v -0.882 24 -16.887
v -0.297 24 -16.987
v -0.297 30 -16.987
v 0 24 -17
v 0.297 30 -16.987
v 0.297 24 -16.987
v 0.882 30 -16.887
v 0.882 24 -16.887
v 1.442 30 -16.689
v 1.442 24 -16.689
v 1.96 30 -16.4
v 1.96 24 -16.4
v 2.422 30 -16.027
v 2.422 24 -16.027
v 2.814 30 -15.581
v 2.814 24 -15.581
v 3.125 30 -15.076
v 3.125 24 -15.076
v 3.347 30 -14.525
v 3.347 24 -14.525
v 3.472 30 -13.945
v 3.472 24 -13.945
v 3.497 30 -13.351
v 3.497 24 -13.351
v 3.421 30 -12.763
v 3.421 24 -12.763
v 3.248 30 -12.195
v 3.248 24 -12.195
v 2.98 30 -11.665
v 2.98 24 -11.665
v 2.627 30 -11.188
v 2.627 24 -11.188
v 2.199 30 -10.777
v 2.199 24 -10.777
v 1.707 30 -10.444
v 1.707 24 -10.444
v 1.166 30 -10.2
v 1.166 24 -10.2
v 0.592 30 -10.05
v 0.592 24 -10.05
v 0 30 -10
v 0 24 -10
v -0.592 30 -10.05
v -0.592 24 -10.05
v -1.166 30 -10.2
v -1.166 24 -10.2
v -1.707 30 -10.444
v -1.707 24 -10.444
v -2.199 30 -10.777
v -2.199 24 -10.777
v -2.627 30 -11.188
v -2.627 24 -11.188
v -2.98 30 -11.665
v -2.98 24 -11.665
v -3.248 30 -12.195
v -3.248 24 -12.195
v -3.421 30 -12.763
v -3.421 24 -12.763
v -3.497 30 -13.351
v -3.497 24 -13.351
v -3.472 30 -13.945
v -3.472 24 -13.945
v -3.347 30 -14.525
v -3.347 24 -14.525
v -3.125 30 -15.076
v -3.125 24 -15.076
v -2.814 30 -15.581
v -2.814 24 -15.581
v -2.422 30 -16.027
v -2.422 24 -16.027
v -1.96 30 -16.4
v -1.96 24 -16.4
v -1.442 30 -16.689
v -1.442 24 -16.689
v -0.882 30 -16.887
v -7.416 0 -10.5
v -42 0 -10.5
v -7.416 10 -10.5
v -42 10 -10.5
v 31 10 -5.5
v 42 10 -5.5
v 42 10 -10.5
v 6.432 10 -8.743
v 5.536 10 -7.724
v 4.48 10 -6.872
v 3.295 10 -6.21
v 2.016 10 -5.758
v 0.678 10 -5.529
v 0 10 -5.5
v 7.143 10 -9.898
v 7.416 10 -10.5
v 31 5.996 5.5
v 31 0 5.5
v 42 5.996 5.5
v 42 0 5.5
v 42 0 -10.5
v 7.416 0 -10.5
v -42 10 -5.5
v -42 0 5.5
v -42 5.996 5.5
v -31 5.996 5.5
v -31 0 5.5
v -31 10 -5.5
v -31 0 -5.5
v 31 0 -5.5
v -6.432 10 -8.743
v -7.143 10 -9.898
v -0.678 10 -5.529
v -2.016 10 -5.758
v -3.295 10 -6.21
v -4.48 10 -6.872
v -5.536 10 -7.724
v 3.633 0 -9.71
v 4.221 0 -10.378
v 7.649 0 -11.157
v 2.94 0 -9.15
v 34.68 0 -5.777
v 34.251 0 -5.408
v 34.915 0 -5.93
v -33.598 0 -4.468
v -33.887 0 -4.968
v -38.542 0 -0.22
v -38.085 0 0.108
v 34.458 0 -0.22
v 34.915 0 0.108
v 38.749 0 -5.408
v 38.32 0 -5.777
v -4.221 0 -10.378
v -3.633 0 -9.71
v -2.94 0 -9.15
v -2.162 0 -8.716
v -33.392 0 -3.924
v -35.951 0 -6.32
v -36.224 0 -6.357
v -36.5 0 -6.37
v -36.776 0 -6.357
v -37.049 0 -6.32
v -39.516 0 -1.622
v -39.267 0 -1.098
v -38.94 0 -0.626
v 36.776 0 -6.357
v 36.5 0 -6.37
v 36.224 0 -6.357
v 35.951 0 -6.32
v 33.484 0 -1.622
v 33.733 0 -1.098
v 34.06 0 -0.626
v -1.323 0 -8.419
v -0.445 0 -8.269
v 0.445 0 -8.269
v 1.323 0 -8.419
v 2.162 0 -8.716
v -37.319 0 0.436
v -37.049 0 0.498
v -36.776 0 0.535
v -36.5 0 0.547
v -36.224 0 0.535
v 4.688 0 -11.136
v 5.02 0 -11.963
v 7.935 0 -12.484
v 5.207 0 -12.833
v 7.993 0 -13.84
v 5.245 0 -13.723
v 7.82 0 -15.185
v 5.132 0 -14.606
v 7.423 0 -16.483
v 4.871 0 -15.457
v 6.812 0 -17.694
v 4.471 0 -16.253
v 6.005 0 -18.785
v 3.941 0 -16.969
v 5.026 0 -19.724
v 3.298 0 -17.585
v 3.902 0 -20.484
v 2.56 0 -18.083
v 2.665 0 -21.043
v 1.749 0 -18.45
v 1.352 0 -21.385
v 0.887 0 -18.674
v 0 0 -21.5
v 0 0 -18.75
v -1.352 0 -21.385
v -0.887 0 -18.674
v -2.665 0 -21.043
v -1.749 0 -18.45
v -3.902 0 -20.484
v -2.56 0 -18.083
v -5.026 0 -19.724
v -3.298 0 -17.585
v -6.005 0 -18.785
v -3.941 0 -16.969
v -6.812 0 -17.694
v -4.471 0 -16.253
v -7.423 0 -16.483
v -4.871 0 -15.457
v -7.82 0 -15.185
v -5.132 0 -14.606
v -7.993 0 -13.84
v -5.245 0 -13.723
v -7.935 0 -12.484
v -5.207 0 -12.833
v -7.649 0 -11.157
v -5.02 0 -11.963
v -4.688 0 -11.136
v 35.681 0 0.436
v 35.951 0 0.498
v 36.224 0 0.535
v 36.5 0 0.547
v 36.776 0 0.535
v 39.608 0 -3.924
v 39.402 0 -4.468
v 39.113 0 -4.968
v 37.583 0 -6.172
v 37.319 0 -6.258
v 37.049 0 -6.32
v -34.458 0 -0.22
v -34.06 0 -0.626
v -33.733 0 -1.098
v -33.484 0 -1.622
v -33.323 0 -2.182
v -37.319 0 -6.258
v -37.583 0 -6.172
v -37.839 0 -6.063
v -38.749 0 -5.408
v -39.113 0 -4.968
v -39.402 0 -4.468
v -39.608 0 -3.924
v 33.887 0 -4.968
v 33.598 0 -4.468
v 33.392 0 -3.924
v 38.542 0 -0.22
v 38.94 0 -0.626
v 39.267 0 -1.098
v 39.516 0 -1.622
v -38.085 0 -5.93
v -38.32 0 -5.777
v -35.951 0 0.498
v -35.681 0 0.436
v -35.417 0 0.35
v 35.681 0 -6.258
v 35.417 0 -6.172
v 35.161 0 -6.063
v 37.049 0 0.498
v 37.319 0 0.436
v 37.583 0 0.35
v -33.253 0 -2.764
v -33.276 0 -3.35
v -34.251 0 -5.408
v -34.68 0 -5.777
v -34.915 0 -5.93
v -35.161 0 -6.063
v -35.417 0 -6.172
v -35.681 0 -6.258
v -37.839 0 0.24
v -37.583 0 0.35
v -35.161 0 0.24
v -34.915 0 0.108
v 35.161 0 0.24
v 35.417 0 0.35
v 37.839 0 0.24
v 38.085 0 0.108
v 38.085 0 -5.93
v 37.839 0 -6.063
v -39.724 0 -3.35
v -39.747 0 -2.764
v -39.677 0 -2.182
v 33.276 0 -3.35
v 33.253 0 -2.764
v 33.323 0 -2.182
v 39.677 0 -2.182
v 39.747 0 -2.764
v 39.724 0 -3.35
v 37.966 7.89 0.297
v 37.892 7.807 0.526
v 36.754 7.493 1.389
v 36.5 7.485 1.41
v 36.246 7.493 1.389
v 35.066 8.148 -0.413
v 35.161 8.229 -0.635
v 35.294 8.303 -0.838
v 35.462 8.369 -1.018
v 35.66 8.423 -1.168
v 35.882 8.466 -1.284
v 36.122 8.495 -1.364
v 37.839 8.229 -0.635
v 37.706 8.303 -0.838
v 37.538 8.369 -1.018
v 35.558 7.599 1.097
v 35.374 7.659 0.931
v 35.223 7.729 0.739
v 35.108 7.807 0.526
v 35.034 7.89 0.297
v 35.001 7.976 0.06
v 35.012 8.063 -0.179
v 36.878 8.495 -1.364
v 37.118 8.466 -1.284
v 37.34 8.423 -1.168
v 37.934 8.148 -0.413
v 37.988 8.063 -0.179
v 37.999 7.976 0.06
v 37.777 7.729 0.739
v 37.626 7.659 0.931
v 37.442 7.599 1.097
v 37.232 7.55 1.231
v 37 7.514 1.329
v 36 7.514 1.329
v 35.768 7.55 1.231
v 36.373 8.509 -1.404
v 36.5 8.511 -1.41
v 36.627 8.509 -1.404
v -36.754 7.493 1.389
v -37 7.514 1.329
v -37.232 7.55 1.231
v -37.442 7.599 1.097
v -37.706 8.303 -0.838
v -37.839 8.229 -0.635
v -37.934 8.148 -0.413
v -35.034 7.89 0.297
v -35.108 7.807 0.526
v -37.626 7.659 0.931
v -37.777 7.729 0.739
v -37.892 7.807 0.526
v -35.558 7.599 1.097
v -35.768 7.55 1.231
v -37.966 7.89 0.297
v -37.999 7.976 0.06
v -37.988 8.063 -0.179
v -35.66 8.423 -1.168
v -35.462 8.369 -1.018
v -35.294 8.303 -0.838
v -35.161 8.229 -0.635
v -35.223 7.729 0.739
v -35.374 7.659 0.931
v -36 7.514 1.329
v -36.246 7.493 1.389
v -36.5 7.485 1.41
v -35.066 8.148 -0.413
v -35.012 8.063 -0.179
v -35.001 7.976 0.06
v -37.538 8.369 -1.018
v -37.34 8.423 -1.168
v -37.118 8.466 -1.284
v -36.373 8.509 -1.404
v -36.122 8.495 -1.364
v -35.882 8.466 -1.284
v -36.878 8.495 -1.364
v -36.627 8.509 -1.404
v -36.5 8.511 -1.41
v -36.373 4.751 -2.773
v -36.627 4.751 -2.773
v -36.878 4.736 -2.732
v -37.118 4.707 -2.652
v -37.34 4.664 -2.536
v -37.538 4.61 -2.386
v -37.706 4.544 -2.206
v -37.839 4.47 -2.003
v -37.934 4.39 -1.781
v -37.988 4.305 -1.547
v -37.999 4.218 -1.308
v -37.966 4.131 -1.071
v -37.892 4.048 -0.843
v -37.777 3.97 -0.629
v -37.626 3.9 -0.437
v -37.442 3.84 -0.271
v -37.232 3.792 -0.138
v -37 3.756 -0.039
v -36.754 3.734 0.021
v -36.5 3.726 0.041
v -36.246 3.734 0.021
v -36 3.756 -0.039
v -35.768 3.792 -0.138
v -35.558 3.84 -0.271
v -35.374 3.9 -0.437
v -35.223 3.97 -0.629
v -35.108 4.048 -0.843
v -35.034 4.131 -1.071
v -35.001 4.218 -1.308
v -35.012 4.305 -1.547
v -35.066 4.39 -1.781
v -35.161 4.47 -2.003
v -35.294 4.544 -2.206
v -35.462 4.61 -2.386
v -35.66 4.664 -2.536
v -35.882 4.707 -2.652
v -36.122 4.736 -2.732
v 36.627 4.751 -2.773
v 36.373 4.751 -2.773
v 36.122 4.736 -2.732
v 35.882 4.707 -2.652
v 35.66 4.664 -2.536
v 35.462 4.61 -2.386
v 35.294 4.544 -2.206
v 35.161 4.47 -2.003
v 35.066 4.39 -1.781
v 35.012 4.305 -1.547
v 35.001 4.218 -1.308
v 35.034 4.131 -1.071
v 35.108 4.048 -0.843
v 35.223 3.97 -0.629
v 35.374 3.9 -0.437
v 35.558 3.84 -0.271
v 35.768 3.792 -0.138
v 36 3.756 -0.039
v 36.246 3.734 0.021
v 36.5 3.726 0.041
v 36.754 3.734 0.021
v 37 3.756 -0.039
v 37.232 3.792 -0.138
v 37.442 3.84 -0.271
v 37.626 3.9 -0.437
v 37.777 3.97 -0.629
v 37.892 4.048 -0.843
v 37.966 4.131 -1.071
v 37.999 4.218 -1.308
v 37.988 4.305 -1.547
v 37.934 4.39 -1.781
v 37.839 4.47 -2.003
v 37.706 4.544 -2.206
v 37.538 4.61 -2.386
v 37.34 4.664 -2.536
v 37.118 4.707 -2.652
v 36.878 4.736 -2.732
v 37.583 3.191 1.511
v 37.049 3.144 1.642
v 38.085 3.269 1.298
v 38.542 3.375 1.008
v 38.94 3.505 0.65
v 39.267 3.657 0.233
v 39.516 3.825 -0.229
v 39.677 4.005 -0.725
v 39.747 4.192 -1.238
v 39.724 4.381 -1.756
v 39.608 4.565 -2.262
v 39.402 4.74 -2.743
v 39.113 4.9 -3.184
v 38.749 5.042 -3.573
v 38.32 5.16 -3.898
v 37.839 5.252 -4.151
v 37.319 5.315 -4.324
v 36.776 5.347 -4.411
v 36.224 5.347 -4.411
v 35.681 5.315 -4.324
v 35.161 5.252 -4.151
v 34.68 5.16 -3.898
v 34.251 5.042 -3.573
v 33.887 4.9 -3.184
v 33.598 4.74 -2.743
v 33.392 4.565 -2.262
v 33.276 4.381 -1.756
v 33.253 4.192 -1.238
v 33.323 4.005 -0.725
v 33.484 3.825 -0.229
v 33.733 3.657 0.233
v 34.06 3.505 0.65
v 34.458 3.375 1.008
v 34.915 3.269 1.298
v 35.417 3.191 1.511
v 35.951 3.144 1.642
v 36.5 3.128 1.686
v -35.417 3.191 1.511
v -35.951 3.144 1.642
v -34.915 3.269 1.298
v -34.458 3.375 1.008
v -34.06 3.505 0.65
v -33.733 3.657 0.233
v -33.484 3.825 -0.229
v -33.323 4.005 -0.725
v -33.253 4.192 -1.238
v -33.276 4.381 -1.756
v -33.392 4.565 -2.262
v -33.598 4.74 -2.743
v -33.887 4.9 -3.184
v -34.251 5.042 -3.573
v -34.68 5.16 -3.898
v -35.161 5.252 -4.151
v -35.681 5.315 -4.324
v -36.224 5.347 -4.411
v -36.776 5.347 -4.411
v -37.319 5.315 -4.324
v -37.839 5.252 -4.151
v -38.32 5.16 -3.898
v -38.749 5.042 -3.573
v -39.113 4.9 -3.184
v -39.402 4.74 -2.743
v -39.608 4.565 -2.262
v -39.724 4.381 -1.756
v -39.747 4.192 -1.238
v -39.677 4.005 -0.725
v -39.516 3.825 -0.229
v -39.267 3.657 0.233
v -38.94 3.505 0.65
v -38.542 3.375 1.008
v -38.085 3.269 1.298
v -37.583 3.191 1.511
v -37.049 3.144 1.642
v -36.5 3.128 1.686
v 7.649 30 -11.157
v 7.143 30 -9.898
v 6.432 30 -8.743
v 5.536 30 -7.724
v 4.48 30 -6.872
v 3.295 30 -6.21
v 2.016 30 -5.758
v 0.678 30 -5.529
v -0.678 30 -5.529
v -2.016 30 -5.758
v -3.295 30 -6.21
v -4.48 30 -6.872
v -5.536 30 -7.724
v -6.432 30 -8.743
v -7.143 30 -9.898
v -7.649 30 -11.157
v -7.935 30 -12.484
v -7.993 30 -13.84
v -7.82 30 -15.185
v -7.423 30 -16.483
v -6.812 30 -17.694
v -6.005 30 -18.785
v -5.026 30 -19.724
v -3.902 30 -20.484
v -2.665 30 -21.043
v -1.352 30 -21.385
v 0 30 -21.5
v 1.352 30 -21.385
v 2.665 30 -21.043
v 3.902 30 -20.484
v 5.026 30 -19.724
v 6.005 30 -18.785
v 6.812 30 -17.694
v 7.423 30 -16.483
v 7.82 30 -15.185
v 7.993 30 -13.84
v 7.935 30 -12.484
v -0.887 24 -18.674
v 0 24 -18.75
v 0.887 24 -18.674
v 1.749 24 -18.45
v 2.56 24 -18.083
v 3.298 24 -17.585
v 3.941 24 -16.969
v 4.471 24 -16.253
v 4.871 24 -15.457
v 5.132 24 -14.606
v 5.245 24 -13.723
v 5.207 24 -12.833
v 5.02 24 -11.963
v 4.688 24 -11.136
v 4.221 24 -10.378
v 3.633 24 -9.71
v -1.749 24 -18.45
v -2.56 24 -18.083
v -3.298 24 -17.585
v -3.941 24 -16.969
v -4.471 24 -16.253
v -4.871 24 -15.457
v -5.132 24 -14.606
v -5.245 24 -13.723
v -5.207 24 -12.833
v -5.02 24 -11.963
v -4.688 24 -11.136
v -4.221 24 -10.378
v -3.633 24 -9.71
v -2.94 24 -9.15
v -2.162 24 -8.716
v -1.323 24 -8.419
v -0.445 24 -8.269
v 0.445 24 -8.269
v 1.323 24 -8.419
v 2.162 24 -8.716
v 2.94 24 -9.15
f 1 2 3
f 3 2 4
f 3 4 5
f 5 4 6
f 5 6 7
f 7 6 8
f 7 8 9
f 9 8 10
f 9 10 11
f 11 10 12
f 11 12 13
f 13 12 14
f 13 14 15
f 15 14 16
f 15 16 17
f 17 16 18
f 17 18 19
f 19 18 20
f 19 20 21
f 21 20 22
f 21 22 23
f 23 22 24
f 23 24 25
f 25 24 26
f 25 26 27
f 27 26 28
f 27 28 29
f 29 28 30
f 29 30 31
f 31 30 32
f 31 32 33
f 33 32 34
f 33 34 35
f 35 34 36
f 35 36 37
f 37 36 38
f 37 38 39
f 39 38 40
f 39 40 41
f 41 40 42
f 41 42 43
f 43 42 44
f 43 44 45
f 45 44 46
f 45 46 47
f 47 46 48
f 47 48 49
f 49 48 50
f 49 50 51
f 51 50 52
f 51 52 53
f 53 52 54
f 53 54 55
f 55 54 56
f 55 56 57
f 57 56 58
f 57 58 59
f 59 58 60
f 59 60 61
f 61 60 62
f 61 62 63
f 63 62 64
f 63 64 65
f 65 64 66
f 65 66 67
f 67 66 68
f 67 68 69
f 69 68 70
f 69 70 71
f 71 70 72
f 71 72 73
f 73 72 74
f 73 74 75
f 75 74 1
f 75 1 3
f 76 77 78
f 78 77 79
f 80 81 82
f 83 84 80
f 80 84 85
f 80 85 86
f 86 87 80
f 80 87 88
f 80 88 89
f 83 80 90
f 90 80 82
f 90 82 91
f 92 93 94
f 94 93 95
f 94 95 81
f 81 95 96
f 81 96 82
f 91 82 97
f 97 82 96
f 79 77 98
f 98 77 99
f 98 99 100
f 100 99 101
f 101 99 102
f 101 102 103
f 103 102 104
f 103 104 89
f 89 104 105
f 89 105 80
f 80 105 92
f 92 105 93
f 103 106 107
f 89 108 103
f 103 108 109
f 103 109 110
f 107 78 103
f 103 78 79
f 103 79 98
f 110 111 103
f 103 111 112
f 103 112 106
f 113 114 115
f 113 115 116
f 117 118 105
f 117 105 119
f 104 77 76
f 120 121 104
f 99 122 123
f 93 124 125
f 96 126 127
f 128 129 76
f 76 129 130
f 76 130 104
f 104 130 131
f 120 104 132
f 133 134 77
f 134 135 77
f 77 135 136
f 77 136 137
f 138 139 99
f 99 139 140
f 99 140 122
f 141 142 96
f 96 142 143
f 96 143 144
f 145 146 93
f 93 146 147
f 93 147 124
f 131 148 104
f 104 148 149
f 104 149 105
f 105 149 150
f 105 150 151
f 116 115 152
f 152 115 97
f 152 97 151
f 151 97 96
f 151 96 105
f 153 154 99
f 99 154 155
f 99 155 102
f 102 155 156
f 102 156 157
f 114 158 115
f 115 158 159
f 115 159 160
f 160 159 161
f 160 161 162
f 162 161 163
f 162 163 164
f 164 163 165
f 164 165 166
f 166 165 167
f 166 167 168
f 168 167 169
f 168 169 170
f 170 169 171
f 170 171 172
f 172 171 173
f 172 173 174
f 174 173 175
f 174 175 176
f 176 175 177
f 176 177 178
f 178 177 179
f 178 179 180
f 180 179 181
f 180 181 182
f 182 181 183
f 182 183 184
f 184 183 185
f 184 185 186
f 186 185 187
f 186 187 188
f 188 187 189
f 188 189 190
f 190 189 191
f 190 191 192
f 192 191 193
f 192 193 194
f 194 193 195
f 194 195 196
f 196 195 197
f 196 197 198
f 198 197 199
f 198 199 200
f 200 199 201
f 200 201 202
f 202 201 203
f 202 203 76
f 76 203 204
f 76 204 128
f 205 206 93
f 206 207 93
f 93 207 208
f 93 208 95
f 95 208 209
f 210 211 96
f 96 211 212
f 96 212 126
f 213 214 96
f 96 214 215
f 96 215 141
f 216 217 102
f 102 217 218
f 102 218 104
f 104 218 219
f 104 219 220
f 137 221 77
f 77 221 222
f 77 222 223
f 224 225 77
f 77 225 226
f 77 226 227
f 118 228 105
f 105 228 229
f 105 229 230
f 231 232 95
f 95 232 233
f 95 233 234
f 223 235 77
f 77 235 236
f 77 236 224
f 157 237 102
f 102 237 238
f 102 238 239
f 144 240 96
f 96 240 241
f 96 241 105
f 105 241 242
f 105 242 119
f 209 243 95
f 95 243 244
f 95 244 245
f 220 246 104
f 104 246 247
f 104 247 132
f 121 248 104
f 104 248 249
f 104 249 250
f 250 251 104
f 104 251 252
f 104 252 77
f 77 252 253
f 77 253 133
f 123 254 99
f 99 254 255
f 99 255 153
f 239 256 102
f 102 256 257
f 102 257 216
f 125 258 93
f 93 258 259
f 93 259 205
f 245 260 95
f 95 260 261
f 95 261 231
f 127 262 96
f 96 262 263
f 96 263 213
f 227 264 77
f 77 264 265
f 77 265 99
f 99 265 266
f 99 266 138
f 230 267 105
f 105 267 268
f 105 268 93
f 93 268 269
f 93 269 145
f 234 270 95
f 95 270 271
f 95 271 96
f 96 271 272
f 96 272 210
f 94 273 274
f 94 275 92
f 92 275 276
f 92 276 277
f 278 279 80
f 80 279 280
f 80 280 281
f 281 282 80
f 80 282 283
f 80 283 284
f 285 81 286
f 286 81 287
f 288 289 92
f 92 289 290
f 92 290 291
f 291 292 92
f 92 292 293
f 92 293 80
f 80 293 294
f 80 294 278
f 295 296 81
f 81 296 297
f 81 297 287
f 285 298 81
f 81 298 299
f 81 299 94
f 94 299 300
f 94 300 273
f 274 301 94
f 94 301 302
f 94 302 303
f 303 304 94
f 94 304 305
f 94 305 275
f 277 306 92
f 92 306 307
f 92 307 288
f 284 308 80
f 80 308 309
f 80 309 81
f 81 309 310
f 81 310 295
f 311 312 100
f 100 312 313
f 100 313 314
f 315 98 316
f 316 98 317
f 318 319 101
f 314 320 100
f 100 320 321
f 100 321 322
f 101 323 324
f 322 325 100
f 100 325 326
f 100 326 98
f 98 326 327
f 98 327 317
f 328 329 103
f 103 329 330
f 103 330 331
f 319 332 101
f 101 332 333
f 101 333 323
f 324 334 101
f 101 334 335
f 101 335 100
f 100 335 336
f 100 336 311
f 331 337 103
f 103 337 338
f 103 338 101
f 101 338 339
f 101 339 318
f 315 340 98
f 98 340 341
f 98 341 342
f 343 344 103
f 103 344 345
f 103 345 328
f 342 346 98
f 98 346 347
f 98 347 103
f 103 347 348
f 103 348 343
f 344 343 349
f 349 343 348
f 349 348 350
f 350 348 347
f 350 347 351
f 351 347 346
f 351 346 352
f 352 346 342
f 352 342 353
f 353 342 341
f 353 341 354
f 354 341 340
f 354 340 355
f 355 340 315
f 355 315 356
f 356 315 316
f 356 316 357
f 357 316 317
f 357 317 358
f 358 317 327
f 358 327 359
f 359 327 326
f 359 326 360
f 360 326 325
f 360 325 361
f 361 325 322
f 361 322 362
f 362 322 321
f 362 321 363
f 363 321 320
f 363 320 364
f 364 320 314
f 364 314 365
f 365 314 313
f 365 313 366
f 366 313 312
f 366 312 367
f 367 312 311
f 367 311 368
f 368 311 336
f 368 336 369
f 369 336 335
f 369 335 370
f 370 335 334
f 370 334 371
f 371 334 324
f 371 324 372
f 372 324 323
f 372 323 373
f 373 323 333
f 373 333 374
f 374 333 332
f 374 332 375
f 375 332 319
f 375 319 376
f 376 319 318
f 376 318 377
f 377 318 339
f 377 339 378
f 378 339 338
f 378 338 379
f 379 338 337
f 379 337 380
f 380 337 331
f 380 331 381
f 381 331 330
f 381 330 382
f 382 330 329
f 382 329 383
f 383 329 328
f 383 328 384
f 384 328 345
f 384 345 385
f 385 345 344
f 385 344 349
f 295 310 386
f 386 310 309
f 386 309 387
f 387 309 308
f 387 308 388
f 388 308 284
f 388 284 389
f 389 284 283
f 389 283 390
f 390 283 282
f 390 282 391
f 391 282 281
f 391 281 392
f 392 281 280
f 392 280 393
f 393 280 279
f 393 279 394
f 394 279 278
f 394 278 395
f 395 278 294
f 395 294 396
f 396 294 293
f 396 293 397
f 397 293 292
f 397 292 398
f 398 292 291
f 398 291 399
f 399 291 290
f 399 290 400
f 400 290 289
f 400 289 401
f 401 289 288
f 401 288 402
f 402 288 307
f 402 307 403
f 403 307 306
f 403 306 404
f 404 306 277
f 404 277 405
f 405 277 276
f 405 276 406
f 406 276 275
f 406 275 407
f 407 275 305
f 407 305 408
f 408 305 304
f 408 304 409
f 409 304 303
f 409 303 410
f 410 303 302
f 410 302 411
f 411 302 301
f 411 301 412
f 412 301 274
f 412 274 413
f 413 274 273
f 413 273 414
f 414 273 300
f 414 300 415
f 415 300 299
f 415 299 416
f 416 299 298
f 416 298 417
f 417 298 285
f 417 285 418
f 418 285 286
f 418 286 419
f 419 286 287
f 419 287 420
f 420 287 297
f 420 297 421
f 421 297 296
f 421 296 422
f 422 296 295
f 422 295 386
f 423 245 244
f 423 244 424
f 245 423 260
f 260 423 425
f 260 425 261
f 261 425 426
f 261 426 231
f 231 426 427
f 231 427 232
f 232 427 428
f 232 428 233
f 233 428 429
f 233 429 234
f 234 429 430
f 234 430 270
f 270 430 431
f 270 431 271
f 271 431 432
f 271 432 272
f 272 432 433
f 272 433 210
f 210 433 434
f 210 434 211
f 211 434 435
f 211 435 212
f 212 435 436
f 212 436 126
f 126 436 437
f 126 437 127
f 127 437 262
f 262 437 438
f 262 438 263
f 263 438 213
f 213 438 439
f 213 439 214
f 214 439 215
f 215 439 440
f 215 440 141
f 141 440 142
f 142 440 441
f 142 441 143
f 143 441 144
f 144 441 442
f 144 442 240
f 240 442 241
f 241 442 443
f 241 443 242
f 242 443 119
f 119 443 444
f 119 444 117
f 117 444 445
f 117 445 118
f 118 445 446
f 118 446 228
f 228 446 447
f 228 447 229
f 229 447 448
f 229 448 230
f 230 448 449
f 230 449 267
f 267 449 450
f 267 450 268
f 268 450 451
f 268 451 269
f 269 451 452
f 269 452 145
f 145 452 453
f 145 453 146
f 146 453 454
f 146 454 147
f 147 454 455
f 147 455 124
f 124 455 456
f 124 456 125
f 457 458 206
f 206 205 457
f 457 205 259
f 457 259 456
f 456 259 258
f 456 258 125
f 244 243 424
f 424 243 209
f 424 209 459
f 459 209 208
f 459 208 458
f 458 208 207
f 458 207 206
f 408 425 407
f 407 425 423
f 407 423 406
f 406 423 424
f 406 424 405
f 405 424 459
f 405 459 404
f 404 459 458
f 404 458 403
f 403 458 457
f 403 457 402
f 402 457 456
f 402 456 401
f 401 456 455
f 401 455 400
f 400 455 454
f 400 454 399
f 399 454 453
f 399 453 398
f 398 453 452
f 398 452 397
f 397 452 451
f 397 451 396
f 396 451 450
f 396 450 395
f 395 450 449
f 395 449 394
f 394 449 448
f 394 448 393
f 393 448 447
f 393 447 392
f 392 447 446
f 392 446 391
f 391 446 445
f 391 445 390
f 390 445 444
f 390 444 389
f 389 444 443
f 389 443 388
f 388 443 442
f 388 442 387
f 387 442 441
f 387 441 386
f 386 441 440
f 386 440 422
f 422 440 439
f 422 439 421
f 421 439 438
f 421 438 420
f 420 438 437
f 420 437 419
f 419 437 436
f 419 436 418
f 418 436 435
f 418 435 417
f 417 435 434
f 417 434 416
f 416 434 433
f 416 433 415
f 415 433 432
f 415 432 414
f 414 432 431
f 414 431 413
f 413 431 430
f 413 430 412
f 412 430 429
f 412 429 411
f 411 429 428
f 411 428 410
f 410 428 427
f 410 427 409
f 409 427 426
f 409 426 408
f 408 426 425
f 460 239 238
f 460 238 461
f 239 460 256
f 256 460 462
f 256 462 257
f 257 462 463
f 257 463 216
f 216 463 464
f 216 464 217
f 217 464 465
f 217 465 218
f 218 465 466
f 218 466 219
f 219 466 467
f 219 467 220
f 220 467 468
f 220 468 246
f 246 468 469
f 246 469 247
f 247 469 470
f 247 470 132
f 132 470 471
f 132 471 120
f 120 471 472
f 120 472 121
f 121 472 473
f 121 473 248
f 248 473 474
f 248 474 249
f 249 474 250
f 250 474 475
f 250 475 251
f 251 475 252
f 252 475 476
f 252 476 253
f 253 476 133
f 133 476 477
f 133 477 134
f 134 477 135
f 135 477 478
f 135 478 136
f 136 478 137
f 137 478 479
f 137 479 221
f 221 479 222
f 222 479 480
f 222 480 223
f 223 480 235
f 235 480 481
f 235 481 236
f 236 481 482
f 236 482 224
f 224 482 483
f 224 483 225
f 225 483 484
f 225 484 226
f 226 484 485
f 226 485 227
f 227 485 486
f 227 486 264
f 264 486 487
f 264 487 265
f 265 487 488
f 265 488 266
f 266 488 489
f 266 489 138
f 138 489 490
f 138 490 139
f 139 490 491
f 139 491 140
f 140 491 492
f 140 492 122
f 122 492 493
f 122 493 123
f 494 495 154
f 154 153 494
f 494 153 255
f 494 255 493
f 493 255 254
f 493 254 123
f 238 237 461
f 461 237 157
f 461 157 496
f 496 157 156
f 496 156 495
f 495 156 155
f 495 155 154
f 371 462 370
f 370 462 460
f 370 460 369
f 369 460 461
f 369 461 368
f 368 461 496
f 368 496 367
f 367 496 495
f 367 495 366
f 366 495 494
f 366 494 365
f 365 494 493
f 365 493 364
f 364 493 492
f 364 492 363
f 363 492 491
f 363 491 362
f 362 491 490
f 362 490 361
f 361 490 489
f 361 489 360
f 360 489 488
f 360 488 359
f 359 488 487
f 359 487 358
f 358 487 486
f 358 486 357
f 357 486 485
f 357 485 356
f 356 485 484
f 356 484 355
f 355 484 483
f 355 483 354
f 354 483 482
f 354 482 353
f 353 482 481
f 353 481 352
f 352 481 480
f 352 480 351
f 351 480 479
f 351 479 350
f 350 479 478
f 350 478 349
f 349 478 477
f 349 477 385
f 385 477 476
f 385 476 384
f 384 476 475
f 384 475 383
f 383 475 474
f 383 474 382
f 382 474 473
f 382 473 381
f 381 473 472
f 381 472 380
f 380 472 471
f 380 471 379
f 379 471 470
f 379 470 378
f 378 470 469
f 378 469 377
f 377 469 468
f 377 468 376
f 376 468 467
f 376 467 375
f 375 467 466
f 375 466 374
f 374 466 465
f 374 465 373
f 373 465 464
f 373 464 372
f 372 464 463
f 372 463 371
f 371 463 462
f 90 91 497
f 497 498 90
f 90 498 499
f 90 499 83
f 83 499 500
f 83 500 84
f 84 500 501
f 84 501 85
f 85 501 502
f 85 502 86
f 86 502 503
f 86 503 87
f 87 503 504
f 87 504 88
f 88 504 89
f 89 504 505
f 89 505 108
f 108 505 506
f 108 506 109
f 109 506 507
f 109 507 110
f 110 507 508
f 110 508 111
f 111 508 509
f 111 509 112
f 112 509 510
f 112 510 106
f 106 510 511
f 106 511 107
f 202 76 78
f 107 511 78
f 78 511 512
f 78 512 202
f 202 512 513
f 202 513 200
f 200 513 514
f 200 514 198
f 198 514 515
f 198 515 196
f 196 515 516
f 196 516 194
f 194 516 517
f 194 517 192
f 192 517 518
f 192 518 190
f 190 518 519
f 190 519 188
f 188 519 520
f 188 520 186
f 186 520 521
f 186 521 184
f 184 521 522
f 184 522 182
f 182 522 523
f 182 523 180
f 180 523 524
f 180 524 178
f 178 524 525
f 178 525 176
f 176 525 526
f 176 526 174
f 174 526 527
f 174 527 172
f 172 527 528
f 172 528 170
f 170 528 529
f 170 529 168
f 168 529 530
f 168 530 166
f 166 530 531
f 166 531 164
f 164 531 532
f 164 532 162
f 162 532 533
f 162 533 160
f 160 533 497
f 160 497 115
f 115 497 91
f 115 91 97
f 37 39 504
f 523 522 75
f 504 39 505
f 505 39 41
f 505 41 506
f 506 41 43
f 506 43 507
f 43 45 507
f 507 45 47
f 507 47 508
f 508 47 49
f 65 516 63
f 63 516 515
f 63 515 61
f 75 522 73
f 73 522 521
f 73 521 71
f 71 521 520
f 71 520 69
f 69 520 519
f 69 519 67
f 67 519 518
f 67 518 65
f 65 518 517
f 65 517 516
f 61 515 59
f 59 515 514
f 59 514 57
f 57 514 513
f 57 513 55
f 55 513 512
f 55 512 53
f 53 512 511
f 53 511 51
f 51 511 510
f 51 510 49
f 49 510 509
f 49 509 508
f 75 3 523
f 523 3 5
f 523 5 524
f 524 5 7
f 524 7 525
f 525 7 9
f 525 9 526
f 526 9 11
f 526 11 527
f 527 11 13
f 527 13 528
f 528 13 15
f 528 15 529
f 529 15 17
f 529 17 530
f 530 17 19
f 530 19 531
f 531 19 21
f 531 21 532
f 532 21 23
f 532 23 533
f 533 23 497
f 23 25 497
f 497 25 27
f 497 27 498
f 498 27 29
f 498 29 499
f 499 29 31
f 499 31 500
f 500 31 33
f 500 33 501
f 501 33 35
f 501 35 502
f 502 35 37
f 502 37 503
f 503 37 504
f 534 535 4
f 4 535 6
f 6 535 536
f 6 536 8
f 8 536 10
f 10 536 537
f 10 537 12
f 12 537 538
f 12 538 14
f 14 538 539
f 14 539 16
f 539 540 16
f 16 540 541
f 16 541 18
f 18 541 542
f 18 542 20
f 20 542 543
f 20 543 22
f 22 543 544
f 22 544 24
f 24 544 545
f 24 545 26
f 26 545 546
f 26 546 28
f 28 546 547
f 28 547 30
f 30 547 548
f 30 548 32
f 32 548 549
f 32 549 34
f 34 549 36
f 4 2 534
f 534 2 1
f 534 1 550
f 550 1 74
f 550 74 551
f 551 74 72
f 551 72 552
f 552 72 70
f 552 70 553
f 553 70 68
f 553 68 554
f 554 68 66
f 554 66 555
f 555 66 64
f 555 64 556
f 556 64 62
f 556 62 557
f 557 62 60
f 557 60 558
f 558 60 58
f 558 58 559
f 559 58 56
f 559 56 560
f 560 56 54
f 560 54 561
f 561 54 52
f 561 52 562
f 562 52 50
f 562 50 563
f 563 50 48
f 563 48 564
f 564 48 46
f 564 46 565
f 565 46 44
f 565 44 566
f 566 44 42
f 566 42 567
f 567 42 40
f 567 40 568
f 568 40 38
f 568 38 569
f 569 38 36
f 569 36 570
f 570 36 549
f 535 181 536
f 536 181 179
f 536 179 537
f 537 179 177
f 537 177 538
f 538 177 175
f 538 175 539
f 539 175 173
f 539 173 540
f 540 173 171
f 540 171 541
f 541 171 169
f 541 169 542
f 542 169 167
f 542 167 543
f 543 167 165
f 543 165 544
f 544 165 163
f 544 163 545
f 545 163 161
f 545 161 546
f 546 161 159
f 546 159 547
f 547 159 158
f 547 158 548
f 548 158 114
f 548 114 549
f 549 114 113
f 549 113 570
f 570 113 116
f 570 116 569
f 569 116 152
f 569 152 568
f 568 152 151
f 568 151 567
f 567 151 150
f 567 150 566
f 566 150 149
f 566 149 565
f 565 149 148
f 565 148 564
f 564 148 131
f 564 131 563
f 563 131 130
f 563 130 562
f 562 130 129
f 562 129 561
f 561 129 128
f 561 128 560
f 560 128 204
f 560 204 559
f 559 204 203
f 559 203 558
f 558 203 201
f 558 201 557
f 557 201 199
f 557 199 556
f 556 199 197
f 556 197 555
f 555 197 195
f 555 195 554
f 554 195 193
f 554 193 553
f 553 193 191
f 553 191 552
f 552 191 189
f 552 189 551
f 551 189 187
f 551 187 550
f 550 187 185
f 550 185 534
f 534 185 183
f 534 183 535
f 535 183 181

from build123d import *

# Parameters (mm, degrees)
EXTRUDE_1_DEPTH     = 10
CUT_EXTRUDE_4_DEPTH = 85
SKETCH_6_R          = 1.5
CUT_EXTRUDE_5_DEPTH = 12.107026924
SKETCH_7_R          = 3.25
CUT_EXTRUDE_6_DEPTH = 8.107026924
SKETCH_8_R          = 8
EXTRUDE_2_DEPTH     = 30
SKETCH_9_R          = 3.5
CUT_EXTRUDE_7_DEPTH = 30
SKETCH_10_R         = 5.25
CUT_EXTRUDE_8_DEPTH = 24


with BuildPart() as part:
    # 草图1 → 凸台-拉伸1 (new body)
    with BuildSketch(Plane(origin=(0, 0, 0), x_dir=(1, 0, 0), z_dir=(0, 1, 0))):
        Polygon((-42, 5.5), (-42, 10.5), (42, 10.5), (42, 5.5), (42, -5.5), (31, -5.5), (31, 5.5), (-31, 5.5), (-31, -5.5), (-42, -5.5), align=None)
    extrude(amount=EXTRUDE_1_DEPTH)

    # 草图5 → 切除-拉伸4 (cut, through all)
    with BuildSketch(Plane.ZY.offset(42)):
        Polygon((-5.5, 10), (5.5, 5.996327423), (5.5, 10), align=None)
    extrude(amount=-CUT_EXTRUDE_4_DEPTH, mode=Mode.SUBTRACT)

    # 草图6 → 切除-拉伸5 (cut, through all)
    with BuildSketch(Plane(origin=(0, 13.15030494, -14.155391688), x_dir=(1, 0, 0), z_dir=(0, -0.939692621, -0.342020143))):
        with Locations((-36.5, 15.063853195)):
            Circle(SKETCH_6_R)
        with Locations((36.5, 15.063853195)):
            Circle(SKETCH_6_R)
    extrude(amount=CUT_EXTRUDE_5_DEPTH, mode=Mode.SUBTRACT)

    # 草图7 → 切除-拉伸6 (cut, through all)
    with BuildSketch(Plane(origin=(0, 3.303785806, 1.202479694), x_dir=(1, 0, 0), z_dir=(0, 0.939692621, 0.342020143))):
        with Locations((-36.5, 2.735533099)):
            Circle(SKETCH_7_R)
        with Locations((36.5, 2.735533099)):
            Circle(SKETCH_7_R)
    extrude(amount=-CUT_EXTRUDE_6_DEPTH, mode=Mode.SUBTRACT)

    # 草图8 → 凸台-拉伸2 (add)
    with BuildSketch(Plane.XZ):
        with Locations((0, -13.5)):
            Circle(SKETCH_8_R)
    extrude(amount=-EXTRUDE_2_DEPTH)

    # 草图9 → 切除-拉伸7 (cut)
    with BuildSketch(Plane(origin=(0, 30, 0), x_dir=(1, 0, 0), z_dir=(0, 1, 0))):
        with Locations((0, 13.5)):
            Circle(SKETCH_9_R)
    extrude(amount=-CUT_EXTRUDE_7_DEPTH, mode=Mode.SUBTRACT)

    # 草图10 → 切除-拉伸8 (cut)
    with BuildSketch(Plane.XZ):
        with Locations((0, -13.5)):
            Circle(SKETCH_10_R)
    extrude(amount=-CUT_EXTRUDE_8_DEPTH, mode=Mode.SUBTRACT)


solid = part.part
